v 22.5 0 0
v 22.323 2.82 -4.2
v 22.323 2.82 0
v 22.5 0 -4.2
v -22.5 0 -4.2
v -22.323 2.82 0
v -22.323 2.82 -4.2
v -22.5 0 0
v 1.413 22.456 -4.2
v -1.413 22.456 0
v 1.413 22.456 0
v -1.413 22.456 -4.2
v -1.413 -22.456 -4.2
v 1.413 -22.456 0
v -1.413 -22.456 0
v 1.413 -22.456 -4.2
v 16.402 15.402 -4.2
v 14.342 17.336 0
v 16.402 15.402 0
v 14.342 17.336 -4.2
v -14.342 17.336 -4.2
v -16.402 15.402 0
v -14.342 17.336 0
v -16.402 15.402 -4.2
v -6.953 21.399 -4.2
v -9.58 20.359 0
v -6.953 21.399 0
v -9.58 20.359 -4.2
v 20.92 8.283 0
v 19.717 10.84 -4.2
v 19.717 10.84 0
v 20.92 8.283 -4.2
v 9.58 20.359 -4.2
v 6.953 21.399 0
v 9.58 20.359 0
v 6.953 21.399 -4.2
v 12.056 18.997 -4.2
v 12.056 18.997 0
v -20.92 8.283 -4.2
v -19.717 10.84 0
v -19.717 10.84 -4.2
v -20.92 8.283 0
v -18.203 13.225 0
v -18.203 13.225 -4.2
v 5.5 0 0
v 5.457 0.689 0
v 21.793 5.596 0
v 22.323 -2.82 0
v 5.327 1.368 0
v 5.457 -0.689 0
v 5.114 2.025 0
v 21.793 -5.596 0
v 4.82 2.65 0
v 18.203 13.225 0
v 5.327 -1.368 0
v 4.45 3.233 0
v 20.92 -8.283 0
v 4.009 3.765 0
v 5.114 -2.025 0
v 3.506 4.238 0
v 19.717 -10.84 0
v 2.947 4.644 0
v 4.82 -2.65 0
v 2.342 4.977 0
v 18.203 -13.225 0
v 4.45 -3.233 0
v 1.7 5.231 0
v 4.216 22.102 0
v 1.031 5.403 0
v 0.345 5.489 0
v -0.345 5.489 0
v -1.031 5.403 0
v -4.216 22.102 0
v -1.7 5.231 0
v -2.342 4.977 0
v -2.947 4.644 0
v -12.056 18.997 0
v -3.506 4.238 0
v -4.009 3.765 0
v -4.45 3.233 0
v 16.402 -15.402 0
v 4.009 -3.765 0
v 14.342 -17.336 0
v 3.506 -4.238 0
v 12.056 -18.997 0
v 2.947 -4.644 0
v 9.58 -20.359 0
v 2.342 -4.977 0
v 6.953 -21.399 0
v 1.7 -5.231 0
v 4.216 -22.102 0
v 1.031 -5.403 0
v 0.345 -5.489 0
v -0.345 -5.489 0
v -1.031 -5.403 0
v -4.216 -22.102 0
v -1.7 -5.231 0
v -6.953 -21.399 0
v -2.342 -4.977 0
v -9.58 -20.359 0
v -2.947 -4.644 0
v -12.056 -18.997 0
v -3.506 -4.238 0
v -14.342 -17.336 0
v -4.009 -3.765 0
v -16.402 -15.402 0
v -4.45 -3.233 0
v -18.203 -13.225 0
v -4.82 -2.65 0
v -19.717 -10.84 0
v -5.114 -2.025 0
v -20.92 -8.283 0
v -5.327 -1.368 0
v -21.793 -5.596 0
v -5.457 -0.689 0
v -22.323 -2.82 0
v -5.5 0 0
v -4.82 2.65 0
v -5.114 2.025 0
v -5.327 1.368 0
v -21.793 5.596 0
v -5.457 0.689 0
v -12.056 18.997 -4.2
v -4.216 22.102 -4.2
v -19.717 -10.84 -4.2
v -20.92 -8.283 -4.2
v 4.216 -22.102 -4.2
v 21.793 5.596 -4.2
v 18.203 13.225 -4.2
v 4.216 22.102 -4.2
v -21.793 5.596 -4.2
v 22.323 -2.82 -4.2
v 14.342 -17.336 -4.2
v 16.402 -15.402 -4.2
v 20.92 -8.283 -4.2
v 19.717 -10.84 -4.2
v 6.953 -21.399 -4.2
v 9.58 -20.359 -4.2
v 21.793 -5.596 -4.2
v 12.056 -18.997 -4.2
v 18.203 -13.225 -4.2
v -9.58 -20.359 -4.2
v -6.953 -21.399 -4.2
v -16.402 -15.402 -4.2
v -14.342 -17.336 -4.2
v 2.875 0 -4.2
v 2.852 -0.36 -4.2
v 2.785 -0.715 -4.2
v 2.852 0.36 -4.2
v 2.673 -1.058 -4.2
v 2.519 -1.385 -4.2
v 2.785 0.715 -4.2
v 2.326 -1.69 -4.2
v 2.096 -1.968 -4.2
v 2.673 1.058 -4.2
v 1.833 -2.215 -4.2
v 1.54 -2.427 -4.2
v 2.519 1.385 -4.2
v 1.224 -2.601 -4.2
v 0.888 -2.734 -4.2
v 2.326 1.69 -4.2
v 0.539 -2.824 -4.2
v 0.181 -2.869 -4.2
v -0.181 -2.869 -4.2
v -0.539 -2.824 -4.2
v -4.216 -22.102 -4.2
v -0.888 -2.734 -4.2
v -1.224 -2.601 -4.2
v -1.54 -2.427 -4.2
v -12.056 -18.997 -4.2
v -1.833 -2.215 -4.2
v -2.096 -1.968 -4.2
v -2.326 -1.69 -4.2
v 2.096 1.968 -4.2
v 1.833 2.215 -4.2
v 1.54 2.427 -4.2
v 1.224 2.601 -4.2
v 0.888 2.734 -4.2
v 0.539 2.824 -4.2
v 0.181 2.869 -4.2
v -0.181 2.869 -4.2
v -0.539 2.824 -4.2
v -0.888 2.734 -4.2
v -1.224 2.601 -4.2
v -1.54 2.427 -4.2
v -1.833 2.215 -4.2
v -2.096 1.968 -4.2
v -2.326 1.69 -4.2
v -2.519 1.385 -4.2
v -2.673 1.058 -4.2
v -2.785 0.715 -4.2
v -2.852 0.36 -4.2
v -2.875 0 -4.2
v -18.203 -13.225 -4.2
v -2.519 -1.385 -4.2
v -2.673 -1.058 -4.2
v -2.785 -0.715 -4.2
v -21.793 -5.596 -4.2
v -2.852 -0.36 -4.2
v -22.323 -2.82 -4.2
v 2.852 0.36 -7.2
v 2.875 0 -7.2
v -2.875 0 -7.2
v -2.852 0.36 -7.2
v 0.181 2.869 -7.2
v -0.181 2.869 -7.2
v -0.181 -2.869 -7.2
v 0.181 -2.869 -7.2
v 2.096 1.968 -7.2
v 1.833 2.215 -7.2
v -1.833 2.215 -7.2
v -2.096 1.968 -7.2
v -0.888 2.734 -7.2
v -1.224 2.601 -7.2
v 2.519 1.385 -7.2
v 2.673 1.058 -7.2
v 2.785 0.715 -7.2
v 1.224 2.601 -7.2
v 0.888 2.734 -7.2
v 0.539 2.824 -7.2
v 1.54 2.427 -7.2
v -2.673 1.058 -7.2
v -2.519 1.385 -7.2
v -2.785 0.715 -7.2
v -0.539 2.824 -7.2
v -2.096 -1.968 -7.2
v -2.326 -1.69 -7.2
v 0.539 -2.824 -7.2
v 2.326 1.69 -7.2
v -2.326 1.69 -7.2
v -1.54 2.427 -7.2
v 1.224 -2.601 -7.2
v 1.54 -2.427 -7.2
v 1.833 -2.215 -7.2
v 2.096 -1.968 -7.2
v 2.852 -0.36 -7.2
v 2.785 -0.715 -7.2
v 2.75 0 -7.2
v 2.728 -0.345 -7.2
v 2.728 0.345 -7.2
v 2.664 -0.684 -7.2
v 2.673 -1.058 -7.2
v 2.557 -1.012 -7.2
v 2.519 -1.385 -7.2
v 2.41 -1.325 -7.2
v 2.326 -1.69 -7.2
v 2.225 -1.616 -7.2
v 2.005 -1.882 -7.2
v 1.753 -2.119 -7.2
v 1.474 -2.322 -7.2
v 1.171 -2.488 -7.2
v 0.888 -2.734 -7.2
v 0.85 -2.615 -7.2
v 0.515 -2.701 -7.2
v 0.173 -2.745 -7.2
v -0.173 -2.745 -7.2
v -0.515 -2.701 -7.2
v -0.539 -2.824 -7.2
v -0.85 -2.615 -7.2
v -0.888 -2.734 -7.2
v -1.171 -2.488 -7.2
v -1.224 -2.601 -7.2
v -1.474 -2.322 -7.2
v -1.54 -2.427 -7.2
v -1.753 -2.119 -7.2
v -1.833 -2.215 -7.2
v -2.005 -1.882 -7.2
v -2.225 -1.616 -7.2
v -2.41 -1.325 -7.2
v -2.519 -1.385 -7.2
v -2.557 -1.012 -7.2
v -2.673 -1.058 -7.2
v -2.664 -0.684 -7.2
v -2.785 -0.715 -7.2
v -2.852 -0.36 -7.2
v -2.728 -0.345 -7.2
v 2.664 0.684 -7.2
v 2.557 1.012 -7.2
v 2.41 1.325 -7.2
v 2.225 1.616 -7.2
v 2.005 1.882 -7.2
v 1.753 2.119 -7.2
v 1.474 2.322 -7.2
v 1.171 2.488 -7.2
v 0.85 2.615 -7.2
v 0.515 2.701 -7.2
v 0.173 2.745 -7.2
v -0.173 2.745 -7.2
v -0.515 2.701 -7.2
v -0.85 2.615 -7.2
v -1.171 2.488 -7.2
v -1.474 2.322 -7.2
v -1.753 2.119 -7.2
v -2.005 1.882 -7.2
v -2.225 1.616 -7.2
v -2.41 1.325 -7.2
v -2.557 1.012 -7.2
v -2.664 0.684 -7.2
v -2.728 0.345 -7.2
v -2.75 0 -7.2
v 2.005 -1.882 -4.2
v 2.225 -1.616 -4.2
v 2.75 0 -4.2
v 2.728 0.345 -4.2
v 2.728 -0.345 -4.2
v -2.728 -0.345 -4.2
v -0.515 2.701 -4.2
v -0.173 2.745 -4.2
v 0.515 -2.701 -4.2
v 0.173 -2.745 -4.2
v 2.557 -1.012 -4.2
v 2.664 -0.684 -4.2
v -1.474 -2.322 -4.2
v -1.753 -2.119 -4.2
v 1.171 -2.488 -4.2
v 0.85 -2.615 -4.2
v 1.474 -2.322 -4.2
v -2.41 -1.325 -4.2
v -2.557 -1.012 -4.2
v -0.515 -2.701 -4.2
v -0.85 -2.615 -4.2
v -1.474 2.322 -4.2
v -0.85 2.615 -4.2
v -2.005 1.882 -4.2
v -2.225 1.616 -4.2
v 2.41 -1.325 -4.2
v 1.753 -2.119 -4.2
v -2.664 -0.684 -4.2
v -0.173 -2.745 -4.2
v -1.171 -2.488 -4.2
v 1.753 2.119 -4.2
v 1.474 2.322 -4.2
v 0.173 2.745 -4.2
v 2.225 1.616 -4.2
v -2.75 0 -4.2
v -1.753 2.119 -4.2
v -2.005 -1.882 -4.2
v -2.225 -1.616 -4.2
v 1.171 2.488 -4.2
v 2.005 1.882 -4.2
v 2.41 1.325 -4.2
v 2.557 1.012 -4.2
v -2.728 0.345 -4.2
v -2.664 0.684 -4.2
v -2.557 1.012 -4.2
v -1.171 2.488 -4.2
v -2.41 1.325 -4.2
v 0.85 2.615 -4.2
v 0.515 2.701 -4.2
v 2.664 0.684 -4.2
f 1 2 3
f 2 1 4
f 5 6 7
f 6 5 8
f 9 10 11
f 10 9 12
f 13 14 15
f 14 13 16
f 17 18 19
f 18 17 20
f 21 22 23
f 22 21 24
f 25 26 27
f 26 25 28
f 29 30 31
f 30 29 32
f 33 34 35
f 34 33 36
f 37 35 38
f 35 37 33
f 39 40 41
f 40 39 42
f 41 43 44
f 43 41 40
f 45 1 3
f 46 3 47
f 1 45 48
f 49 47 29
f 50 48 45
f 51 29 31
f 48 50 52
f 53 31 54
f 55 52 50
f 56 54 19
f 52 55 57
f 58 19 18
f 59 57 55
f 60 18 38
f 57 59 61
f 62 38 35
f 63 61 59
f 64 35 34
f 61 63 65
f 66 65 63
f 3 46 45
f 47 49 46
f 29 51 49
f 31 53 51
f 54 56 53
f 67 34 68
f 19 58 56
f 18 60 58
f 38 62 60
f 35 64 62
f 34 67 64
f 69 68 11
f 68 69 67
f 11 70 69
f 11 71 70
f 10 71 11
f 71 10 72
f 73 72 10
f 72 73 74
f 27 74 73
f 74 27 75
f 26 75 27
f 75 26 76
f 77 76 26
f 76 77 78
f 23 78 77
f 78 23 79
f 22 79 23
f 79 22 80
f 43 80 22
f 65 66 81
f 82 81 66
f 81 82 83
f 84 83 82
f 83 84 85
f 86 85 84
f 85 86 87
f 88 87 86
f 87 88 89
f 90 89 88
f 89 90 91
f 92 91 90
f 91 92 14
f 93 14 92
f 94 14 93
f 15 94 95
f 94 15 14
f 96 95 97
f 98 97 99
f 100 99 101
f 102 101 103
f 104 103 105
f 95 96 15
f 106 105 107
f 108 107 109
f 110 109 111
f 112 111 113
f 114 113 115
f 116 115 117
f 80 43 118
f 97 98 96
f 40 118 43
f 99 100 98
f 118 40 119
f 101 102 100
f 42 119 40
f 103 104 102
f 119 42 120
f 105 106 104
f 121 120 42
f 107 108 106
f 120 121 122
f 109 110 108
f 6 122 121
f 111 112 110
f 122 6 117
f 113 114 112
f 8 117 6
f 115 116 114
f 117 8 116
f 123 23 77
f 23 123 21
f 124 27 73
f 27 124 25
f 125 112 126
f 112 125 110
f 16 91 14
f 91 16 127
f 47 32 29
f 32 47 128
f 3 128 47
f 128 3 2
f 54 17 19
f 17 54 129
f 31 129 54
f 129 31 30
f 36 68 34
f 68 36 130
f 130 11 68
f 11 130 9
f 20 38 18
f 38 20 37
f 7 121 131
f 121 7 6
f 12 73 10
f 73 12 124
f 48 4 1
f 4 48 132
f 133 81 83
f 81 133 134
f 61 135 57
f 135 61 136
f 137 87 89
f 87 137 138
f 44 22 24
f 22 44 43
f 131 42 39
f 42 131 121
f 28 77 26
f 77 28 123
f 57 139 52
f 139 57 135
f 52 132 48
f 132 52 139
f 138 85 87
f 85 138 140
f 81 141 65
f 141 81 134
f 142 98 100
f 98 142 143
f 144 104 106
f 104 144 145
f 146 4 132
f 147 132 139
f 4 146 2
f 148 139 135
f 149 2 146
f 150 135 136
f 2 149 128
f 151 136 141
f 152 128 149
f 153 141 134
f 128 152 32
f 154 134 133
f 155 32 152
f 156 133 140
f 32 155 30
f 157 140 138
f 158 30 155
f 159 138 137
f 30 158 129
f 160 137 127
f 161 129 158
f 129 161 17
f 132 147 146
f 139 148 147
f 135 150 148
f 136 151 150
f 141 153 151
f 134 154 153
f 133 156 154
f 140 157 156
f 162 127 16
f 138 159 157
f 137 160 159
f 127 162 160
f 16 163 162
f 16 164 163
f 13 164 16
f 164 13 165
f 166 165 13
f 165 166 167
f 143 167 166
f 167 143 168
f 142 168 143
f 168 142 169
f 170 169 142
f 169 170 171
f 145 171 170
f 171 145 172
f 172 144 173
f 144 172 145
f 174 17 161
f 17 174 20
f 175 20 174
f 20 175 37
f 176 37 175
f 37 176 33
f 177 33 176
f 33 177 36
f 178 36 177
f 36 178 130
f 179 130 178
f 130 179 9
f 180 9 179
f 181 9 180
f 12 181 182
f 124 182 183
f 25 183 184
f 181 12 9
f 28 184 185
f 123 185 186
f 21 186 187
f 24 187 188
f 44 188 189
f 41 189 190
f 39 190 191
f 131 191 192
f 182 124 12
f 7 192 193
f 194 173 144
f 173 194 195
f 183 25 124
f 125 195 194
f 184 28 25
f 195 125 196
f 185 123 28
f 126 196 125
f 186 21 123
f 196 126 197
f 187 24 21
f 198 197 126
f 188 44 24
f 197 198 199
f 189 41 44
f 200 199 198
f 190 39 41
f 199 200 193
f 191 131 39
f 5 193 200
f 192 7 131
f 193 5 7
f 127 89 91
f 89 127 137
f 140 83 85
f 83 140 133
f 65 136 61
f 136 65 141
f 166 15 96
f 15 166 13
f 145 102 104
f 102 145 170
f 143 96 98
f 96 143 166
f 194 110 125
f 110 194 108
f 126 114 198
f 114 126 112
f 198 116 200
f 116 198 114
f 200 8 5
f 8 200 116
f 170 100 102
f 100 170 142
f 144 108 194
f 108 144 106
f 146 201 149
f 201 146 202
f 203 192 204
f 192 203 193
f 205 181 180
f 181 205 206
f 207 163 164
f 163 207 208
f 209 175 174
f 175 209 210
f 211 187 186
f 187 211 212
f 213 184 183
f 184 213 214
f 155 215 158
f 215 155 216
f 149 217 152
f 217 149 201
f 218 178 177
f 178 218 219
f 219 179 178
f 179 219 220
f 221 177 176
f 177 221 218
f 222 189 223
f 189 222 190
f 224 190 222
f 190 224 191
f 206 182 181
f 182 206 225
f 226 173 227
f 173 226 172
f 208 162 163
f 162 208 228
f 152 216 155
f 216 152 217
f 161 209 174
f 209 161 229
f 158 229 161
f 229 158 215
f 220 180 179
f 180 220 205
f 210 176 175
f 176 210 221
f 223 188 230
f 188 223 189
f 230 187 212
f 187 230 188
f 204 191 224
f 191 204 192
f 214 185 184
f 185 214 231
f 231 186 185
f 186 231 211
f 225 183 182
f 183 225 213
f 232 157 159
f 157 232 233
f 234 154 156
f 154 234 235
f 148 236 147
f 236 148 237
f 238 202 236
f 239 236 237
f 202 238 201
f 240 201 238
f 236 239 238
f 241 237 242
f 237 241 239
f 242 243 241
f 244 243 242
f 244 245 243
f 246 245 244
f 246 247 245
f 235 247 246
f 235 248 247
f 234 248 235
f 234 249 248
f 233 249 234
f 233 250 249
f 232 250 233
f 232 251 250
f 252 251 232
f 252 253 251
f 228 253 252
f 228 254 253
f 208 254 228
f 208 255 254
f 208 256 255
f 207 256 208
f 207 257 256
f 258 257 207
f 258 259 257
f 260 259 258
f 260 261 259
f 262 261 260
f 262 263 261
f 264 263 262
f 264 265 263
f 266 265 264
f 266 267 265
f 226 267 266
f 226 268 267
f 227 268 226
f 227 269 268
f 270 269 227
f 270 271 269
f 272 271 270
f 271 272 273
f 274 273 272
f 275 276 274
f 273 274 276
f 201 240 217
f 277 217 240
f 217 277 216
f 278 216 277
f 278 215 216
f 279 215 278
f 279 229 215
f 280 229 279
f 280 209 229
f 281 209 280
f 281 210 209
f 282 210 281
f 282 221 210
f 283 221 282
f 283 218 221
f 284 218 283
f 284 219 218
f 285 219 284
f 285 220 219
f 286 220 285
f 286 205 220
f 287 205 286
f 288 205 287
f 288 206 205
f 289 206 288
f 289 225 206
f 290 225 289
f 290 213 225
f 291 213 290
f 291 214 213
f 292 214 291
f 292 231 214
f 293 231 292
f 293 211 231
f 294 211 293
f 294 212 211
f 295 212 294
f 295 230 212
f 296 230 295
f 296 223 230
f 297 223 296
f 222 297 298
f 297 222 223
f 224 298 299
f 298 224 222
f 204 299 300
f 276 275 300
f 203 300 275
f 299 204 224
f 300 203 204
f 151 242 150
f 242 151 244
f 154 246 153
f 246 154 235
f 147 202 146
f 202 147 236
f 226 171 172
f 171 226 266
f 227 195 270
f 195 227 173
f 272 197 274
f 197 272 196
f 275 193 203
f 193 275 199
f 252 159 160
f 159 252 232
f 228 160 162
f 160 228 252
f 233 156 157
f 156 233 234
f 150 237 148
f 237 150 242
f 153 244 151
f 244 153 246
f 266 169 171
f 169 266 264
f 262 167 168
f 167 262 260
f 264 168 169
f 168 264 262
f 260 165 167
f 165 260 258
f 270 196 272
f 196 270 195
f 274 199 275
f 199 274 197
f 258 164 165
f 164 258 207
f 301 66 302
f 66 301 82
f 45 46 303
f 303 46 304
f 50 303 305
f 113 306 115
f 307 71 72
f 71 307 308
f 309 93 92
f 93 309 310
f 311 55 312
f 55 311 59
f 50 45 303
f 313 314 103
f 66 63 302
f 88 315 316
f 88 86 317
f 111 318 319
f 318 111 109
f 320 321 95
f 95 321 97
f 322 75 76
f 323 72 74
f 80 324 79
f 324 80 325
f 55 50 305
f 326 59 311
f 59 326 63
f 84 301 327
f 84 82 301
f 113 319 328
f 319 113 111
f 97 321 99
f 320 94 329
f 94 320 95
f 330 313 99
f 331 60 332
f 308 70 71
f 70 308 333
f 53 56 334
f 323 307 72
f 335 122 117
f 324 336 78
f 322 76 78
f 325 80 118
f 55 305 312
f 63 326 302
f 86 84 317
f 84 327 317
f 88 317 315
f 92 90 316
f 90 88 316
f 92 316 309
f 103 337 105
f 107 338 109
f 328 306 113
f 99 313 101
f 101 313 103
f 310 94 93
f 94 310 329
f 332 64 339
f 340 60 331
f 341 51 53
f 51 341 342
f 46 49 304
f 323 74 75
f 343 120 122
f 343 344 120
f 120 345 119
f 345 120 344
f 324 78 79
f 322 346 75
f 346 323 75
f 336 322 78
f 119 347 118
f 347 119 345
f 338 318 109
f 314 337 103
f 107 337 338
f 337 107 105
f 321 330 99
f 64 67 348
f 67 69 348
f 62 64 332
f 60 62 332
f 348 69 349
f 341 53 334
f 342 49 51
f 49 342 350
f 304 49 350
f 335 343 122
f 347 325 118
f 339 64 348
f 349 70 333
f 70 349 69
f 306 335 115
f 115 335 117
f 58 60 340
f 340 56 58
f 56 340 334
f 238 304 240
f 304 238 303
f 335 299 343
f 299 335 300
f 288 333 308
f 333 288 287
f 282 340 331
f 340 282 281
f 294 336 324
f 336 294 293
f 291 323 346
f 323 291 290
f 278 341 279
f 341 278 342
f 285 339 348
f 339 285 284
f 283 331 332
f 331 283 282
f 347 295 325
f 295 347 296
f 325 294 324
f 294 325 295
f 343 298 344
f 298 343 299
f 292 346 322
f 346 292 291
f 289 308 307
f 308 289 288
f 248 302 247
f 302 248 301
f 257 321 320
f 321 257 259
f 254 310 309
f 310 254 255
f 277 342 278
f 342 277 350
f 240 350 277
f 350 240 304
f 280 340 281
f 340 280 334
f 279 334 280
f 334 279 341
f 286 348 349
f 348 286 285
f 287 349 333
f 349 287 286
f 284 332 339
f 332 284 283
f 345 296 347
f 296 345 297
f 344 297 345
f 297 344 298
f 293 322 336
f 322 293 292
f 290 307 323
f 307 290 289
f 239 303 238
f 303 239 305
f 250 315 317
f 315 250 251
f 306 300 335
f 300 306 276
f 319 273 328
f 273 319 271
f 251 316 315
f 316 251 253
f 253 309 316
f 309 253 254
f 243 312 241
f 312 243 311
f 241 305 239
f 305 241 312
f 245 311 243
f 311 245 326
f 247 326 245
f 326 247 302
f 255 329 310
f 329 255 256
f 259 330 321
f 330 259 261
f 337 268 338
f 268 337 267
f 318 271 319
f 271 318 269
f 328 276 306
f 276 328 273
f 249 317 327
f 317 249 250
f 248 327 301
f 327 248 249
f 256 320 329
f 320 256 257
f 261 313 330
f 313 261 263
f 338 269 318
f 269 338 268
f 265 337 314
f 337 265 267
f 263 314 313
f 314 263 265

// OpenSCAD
$fn = 50;


difference() {
	union() {
		translate(v = [0, 0, -4.2000000000]) {
			cylinder(h = 4.2000000000, r = 22.5000000000);
		}
		#translate(v = [0, 0, -7.2000000000]) {
			cylinder(h = 7.2000000000, r = 2.8750000000);
		}
	}
	union() {
		translate(v = [0, 0, 0]) {
			rotate(a = [0, 0, 0]) {
				difference() {
					union() {
						translate(v = [0, 0, -7.2000000000]) {
							cylinder(h = 7.2000000000, r = 2.2500000000);
						}
						translate(v = [0, 0, -4.2000000000]) {
							cylinder(h = 4.2000000000, r1 = 2.7500000000, r2 = 5.5000000000);
						}
						translate(v = [0, 0, -7.2000000000]) {
							cylinder(h = 7.2000000000, r = 2.7500000000);
						}
						translate(v = [0, 0, -7.2000000000]) {
							cylinder(h = 7.2000000000, r = 2.2500000000);
						}
					}
					union();
				}
			}
		}
	}
}
